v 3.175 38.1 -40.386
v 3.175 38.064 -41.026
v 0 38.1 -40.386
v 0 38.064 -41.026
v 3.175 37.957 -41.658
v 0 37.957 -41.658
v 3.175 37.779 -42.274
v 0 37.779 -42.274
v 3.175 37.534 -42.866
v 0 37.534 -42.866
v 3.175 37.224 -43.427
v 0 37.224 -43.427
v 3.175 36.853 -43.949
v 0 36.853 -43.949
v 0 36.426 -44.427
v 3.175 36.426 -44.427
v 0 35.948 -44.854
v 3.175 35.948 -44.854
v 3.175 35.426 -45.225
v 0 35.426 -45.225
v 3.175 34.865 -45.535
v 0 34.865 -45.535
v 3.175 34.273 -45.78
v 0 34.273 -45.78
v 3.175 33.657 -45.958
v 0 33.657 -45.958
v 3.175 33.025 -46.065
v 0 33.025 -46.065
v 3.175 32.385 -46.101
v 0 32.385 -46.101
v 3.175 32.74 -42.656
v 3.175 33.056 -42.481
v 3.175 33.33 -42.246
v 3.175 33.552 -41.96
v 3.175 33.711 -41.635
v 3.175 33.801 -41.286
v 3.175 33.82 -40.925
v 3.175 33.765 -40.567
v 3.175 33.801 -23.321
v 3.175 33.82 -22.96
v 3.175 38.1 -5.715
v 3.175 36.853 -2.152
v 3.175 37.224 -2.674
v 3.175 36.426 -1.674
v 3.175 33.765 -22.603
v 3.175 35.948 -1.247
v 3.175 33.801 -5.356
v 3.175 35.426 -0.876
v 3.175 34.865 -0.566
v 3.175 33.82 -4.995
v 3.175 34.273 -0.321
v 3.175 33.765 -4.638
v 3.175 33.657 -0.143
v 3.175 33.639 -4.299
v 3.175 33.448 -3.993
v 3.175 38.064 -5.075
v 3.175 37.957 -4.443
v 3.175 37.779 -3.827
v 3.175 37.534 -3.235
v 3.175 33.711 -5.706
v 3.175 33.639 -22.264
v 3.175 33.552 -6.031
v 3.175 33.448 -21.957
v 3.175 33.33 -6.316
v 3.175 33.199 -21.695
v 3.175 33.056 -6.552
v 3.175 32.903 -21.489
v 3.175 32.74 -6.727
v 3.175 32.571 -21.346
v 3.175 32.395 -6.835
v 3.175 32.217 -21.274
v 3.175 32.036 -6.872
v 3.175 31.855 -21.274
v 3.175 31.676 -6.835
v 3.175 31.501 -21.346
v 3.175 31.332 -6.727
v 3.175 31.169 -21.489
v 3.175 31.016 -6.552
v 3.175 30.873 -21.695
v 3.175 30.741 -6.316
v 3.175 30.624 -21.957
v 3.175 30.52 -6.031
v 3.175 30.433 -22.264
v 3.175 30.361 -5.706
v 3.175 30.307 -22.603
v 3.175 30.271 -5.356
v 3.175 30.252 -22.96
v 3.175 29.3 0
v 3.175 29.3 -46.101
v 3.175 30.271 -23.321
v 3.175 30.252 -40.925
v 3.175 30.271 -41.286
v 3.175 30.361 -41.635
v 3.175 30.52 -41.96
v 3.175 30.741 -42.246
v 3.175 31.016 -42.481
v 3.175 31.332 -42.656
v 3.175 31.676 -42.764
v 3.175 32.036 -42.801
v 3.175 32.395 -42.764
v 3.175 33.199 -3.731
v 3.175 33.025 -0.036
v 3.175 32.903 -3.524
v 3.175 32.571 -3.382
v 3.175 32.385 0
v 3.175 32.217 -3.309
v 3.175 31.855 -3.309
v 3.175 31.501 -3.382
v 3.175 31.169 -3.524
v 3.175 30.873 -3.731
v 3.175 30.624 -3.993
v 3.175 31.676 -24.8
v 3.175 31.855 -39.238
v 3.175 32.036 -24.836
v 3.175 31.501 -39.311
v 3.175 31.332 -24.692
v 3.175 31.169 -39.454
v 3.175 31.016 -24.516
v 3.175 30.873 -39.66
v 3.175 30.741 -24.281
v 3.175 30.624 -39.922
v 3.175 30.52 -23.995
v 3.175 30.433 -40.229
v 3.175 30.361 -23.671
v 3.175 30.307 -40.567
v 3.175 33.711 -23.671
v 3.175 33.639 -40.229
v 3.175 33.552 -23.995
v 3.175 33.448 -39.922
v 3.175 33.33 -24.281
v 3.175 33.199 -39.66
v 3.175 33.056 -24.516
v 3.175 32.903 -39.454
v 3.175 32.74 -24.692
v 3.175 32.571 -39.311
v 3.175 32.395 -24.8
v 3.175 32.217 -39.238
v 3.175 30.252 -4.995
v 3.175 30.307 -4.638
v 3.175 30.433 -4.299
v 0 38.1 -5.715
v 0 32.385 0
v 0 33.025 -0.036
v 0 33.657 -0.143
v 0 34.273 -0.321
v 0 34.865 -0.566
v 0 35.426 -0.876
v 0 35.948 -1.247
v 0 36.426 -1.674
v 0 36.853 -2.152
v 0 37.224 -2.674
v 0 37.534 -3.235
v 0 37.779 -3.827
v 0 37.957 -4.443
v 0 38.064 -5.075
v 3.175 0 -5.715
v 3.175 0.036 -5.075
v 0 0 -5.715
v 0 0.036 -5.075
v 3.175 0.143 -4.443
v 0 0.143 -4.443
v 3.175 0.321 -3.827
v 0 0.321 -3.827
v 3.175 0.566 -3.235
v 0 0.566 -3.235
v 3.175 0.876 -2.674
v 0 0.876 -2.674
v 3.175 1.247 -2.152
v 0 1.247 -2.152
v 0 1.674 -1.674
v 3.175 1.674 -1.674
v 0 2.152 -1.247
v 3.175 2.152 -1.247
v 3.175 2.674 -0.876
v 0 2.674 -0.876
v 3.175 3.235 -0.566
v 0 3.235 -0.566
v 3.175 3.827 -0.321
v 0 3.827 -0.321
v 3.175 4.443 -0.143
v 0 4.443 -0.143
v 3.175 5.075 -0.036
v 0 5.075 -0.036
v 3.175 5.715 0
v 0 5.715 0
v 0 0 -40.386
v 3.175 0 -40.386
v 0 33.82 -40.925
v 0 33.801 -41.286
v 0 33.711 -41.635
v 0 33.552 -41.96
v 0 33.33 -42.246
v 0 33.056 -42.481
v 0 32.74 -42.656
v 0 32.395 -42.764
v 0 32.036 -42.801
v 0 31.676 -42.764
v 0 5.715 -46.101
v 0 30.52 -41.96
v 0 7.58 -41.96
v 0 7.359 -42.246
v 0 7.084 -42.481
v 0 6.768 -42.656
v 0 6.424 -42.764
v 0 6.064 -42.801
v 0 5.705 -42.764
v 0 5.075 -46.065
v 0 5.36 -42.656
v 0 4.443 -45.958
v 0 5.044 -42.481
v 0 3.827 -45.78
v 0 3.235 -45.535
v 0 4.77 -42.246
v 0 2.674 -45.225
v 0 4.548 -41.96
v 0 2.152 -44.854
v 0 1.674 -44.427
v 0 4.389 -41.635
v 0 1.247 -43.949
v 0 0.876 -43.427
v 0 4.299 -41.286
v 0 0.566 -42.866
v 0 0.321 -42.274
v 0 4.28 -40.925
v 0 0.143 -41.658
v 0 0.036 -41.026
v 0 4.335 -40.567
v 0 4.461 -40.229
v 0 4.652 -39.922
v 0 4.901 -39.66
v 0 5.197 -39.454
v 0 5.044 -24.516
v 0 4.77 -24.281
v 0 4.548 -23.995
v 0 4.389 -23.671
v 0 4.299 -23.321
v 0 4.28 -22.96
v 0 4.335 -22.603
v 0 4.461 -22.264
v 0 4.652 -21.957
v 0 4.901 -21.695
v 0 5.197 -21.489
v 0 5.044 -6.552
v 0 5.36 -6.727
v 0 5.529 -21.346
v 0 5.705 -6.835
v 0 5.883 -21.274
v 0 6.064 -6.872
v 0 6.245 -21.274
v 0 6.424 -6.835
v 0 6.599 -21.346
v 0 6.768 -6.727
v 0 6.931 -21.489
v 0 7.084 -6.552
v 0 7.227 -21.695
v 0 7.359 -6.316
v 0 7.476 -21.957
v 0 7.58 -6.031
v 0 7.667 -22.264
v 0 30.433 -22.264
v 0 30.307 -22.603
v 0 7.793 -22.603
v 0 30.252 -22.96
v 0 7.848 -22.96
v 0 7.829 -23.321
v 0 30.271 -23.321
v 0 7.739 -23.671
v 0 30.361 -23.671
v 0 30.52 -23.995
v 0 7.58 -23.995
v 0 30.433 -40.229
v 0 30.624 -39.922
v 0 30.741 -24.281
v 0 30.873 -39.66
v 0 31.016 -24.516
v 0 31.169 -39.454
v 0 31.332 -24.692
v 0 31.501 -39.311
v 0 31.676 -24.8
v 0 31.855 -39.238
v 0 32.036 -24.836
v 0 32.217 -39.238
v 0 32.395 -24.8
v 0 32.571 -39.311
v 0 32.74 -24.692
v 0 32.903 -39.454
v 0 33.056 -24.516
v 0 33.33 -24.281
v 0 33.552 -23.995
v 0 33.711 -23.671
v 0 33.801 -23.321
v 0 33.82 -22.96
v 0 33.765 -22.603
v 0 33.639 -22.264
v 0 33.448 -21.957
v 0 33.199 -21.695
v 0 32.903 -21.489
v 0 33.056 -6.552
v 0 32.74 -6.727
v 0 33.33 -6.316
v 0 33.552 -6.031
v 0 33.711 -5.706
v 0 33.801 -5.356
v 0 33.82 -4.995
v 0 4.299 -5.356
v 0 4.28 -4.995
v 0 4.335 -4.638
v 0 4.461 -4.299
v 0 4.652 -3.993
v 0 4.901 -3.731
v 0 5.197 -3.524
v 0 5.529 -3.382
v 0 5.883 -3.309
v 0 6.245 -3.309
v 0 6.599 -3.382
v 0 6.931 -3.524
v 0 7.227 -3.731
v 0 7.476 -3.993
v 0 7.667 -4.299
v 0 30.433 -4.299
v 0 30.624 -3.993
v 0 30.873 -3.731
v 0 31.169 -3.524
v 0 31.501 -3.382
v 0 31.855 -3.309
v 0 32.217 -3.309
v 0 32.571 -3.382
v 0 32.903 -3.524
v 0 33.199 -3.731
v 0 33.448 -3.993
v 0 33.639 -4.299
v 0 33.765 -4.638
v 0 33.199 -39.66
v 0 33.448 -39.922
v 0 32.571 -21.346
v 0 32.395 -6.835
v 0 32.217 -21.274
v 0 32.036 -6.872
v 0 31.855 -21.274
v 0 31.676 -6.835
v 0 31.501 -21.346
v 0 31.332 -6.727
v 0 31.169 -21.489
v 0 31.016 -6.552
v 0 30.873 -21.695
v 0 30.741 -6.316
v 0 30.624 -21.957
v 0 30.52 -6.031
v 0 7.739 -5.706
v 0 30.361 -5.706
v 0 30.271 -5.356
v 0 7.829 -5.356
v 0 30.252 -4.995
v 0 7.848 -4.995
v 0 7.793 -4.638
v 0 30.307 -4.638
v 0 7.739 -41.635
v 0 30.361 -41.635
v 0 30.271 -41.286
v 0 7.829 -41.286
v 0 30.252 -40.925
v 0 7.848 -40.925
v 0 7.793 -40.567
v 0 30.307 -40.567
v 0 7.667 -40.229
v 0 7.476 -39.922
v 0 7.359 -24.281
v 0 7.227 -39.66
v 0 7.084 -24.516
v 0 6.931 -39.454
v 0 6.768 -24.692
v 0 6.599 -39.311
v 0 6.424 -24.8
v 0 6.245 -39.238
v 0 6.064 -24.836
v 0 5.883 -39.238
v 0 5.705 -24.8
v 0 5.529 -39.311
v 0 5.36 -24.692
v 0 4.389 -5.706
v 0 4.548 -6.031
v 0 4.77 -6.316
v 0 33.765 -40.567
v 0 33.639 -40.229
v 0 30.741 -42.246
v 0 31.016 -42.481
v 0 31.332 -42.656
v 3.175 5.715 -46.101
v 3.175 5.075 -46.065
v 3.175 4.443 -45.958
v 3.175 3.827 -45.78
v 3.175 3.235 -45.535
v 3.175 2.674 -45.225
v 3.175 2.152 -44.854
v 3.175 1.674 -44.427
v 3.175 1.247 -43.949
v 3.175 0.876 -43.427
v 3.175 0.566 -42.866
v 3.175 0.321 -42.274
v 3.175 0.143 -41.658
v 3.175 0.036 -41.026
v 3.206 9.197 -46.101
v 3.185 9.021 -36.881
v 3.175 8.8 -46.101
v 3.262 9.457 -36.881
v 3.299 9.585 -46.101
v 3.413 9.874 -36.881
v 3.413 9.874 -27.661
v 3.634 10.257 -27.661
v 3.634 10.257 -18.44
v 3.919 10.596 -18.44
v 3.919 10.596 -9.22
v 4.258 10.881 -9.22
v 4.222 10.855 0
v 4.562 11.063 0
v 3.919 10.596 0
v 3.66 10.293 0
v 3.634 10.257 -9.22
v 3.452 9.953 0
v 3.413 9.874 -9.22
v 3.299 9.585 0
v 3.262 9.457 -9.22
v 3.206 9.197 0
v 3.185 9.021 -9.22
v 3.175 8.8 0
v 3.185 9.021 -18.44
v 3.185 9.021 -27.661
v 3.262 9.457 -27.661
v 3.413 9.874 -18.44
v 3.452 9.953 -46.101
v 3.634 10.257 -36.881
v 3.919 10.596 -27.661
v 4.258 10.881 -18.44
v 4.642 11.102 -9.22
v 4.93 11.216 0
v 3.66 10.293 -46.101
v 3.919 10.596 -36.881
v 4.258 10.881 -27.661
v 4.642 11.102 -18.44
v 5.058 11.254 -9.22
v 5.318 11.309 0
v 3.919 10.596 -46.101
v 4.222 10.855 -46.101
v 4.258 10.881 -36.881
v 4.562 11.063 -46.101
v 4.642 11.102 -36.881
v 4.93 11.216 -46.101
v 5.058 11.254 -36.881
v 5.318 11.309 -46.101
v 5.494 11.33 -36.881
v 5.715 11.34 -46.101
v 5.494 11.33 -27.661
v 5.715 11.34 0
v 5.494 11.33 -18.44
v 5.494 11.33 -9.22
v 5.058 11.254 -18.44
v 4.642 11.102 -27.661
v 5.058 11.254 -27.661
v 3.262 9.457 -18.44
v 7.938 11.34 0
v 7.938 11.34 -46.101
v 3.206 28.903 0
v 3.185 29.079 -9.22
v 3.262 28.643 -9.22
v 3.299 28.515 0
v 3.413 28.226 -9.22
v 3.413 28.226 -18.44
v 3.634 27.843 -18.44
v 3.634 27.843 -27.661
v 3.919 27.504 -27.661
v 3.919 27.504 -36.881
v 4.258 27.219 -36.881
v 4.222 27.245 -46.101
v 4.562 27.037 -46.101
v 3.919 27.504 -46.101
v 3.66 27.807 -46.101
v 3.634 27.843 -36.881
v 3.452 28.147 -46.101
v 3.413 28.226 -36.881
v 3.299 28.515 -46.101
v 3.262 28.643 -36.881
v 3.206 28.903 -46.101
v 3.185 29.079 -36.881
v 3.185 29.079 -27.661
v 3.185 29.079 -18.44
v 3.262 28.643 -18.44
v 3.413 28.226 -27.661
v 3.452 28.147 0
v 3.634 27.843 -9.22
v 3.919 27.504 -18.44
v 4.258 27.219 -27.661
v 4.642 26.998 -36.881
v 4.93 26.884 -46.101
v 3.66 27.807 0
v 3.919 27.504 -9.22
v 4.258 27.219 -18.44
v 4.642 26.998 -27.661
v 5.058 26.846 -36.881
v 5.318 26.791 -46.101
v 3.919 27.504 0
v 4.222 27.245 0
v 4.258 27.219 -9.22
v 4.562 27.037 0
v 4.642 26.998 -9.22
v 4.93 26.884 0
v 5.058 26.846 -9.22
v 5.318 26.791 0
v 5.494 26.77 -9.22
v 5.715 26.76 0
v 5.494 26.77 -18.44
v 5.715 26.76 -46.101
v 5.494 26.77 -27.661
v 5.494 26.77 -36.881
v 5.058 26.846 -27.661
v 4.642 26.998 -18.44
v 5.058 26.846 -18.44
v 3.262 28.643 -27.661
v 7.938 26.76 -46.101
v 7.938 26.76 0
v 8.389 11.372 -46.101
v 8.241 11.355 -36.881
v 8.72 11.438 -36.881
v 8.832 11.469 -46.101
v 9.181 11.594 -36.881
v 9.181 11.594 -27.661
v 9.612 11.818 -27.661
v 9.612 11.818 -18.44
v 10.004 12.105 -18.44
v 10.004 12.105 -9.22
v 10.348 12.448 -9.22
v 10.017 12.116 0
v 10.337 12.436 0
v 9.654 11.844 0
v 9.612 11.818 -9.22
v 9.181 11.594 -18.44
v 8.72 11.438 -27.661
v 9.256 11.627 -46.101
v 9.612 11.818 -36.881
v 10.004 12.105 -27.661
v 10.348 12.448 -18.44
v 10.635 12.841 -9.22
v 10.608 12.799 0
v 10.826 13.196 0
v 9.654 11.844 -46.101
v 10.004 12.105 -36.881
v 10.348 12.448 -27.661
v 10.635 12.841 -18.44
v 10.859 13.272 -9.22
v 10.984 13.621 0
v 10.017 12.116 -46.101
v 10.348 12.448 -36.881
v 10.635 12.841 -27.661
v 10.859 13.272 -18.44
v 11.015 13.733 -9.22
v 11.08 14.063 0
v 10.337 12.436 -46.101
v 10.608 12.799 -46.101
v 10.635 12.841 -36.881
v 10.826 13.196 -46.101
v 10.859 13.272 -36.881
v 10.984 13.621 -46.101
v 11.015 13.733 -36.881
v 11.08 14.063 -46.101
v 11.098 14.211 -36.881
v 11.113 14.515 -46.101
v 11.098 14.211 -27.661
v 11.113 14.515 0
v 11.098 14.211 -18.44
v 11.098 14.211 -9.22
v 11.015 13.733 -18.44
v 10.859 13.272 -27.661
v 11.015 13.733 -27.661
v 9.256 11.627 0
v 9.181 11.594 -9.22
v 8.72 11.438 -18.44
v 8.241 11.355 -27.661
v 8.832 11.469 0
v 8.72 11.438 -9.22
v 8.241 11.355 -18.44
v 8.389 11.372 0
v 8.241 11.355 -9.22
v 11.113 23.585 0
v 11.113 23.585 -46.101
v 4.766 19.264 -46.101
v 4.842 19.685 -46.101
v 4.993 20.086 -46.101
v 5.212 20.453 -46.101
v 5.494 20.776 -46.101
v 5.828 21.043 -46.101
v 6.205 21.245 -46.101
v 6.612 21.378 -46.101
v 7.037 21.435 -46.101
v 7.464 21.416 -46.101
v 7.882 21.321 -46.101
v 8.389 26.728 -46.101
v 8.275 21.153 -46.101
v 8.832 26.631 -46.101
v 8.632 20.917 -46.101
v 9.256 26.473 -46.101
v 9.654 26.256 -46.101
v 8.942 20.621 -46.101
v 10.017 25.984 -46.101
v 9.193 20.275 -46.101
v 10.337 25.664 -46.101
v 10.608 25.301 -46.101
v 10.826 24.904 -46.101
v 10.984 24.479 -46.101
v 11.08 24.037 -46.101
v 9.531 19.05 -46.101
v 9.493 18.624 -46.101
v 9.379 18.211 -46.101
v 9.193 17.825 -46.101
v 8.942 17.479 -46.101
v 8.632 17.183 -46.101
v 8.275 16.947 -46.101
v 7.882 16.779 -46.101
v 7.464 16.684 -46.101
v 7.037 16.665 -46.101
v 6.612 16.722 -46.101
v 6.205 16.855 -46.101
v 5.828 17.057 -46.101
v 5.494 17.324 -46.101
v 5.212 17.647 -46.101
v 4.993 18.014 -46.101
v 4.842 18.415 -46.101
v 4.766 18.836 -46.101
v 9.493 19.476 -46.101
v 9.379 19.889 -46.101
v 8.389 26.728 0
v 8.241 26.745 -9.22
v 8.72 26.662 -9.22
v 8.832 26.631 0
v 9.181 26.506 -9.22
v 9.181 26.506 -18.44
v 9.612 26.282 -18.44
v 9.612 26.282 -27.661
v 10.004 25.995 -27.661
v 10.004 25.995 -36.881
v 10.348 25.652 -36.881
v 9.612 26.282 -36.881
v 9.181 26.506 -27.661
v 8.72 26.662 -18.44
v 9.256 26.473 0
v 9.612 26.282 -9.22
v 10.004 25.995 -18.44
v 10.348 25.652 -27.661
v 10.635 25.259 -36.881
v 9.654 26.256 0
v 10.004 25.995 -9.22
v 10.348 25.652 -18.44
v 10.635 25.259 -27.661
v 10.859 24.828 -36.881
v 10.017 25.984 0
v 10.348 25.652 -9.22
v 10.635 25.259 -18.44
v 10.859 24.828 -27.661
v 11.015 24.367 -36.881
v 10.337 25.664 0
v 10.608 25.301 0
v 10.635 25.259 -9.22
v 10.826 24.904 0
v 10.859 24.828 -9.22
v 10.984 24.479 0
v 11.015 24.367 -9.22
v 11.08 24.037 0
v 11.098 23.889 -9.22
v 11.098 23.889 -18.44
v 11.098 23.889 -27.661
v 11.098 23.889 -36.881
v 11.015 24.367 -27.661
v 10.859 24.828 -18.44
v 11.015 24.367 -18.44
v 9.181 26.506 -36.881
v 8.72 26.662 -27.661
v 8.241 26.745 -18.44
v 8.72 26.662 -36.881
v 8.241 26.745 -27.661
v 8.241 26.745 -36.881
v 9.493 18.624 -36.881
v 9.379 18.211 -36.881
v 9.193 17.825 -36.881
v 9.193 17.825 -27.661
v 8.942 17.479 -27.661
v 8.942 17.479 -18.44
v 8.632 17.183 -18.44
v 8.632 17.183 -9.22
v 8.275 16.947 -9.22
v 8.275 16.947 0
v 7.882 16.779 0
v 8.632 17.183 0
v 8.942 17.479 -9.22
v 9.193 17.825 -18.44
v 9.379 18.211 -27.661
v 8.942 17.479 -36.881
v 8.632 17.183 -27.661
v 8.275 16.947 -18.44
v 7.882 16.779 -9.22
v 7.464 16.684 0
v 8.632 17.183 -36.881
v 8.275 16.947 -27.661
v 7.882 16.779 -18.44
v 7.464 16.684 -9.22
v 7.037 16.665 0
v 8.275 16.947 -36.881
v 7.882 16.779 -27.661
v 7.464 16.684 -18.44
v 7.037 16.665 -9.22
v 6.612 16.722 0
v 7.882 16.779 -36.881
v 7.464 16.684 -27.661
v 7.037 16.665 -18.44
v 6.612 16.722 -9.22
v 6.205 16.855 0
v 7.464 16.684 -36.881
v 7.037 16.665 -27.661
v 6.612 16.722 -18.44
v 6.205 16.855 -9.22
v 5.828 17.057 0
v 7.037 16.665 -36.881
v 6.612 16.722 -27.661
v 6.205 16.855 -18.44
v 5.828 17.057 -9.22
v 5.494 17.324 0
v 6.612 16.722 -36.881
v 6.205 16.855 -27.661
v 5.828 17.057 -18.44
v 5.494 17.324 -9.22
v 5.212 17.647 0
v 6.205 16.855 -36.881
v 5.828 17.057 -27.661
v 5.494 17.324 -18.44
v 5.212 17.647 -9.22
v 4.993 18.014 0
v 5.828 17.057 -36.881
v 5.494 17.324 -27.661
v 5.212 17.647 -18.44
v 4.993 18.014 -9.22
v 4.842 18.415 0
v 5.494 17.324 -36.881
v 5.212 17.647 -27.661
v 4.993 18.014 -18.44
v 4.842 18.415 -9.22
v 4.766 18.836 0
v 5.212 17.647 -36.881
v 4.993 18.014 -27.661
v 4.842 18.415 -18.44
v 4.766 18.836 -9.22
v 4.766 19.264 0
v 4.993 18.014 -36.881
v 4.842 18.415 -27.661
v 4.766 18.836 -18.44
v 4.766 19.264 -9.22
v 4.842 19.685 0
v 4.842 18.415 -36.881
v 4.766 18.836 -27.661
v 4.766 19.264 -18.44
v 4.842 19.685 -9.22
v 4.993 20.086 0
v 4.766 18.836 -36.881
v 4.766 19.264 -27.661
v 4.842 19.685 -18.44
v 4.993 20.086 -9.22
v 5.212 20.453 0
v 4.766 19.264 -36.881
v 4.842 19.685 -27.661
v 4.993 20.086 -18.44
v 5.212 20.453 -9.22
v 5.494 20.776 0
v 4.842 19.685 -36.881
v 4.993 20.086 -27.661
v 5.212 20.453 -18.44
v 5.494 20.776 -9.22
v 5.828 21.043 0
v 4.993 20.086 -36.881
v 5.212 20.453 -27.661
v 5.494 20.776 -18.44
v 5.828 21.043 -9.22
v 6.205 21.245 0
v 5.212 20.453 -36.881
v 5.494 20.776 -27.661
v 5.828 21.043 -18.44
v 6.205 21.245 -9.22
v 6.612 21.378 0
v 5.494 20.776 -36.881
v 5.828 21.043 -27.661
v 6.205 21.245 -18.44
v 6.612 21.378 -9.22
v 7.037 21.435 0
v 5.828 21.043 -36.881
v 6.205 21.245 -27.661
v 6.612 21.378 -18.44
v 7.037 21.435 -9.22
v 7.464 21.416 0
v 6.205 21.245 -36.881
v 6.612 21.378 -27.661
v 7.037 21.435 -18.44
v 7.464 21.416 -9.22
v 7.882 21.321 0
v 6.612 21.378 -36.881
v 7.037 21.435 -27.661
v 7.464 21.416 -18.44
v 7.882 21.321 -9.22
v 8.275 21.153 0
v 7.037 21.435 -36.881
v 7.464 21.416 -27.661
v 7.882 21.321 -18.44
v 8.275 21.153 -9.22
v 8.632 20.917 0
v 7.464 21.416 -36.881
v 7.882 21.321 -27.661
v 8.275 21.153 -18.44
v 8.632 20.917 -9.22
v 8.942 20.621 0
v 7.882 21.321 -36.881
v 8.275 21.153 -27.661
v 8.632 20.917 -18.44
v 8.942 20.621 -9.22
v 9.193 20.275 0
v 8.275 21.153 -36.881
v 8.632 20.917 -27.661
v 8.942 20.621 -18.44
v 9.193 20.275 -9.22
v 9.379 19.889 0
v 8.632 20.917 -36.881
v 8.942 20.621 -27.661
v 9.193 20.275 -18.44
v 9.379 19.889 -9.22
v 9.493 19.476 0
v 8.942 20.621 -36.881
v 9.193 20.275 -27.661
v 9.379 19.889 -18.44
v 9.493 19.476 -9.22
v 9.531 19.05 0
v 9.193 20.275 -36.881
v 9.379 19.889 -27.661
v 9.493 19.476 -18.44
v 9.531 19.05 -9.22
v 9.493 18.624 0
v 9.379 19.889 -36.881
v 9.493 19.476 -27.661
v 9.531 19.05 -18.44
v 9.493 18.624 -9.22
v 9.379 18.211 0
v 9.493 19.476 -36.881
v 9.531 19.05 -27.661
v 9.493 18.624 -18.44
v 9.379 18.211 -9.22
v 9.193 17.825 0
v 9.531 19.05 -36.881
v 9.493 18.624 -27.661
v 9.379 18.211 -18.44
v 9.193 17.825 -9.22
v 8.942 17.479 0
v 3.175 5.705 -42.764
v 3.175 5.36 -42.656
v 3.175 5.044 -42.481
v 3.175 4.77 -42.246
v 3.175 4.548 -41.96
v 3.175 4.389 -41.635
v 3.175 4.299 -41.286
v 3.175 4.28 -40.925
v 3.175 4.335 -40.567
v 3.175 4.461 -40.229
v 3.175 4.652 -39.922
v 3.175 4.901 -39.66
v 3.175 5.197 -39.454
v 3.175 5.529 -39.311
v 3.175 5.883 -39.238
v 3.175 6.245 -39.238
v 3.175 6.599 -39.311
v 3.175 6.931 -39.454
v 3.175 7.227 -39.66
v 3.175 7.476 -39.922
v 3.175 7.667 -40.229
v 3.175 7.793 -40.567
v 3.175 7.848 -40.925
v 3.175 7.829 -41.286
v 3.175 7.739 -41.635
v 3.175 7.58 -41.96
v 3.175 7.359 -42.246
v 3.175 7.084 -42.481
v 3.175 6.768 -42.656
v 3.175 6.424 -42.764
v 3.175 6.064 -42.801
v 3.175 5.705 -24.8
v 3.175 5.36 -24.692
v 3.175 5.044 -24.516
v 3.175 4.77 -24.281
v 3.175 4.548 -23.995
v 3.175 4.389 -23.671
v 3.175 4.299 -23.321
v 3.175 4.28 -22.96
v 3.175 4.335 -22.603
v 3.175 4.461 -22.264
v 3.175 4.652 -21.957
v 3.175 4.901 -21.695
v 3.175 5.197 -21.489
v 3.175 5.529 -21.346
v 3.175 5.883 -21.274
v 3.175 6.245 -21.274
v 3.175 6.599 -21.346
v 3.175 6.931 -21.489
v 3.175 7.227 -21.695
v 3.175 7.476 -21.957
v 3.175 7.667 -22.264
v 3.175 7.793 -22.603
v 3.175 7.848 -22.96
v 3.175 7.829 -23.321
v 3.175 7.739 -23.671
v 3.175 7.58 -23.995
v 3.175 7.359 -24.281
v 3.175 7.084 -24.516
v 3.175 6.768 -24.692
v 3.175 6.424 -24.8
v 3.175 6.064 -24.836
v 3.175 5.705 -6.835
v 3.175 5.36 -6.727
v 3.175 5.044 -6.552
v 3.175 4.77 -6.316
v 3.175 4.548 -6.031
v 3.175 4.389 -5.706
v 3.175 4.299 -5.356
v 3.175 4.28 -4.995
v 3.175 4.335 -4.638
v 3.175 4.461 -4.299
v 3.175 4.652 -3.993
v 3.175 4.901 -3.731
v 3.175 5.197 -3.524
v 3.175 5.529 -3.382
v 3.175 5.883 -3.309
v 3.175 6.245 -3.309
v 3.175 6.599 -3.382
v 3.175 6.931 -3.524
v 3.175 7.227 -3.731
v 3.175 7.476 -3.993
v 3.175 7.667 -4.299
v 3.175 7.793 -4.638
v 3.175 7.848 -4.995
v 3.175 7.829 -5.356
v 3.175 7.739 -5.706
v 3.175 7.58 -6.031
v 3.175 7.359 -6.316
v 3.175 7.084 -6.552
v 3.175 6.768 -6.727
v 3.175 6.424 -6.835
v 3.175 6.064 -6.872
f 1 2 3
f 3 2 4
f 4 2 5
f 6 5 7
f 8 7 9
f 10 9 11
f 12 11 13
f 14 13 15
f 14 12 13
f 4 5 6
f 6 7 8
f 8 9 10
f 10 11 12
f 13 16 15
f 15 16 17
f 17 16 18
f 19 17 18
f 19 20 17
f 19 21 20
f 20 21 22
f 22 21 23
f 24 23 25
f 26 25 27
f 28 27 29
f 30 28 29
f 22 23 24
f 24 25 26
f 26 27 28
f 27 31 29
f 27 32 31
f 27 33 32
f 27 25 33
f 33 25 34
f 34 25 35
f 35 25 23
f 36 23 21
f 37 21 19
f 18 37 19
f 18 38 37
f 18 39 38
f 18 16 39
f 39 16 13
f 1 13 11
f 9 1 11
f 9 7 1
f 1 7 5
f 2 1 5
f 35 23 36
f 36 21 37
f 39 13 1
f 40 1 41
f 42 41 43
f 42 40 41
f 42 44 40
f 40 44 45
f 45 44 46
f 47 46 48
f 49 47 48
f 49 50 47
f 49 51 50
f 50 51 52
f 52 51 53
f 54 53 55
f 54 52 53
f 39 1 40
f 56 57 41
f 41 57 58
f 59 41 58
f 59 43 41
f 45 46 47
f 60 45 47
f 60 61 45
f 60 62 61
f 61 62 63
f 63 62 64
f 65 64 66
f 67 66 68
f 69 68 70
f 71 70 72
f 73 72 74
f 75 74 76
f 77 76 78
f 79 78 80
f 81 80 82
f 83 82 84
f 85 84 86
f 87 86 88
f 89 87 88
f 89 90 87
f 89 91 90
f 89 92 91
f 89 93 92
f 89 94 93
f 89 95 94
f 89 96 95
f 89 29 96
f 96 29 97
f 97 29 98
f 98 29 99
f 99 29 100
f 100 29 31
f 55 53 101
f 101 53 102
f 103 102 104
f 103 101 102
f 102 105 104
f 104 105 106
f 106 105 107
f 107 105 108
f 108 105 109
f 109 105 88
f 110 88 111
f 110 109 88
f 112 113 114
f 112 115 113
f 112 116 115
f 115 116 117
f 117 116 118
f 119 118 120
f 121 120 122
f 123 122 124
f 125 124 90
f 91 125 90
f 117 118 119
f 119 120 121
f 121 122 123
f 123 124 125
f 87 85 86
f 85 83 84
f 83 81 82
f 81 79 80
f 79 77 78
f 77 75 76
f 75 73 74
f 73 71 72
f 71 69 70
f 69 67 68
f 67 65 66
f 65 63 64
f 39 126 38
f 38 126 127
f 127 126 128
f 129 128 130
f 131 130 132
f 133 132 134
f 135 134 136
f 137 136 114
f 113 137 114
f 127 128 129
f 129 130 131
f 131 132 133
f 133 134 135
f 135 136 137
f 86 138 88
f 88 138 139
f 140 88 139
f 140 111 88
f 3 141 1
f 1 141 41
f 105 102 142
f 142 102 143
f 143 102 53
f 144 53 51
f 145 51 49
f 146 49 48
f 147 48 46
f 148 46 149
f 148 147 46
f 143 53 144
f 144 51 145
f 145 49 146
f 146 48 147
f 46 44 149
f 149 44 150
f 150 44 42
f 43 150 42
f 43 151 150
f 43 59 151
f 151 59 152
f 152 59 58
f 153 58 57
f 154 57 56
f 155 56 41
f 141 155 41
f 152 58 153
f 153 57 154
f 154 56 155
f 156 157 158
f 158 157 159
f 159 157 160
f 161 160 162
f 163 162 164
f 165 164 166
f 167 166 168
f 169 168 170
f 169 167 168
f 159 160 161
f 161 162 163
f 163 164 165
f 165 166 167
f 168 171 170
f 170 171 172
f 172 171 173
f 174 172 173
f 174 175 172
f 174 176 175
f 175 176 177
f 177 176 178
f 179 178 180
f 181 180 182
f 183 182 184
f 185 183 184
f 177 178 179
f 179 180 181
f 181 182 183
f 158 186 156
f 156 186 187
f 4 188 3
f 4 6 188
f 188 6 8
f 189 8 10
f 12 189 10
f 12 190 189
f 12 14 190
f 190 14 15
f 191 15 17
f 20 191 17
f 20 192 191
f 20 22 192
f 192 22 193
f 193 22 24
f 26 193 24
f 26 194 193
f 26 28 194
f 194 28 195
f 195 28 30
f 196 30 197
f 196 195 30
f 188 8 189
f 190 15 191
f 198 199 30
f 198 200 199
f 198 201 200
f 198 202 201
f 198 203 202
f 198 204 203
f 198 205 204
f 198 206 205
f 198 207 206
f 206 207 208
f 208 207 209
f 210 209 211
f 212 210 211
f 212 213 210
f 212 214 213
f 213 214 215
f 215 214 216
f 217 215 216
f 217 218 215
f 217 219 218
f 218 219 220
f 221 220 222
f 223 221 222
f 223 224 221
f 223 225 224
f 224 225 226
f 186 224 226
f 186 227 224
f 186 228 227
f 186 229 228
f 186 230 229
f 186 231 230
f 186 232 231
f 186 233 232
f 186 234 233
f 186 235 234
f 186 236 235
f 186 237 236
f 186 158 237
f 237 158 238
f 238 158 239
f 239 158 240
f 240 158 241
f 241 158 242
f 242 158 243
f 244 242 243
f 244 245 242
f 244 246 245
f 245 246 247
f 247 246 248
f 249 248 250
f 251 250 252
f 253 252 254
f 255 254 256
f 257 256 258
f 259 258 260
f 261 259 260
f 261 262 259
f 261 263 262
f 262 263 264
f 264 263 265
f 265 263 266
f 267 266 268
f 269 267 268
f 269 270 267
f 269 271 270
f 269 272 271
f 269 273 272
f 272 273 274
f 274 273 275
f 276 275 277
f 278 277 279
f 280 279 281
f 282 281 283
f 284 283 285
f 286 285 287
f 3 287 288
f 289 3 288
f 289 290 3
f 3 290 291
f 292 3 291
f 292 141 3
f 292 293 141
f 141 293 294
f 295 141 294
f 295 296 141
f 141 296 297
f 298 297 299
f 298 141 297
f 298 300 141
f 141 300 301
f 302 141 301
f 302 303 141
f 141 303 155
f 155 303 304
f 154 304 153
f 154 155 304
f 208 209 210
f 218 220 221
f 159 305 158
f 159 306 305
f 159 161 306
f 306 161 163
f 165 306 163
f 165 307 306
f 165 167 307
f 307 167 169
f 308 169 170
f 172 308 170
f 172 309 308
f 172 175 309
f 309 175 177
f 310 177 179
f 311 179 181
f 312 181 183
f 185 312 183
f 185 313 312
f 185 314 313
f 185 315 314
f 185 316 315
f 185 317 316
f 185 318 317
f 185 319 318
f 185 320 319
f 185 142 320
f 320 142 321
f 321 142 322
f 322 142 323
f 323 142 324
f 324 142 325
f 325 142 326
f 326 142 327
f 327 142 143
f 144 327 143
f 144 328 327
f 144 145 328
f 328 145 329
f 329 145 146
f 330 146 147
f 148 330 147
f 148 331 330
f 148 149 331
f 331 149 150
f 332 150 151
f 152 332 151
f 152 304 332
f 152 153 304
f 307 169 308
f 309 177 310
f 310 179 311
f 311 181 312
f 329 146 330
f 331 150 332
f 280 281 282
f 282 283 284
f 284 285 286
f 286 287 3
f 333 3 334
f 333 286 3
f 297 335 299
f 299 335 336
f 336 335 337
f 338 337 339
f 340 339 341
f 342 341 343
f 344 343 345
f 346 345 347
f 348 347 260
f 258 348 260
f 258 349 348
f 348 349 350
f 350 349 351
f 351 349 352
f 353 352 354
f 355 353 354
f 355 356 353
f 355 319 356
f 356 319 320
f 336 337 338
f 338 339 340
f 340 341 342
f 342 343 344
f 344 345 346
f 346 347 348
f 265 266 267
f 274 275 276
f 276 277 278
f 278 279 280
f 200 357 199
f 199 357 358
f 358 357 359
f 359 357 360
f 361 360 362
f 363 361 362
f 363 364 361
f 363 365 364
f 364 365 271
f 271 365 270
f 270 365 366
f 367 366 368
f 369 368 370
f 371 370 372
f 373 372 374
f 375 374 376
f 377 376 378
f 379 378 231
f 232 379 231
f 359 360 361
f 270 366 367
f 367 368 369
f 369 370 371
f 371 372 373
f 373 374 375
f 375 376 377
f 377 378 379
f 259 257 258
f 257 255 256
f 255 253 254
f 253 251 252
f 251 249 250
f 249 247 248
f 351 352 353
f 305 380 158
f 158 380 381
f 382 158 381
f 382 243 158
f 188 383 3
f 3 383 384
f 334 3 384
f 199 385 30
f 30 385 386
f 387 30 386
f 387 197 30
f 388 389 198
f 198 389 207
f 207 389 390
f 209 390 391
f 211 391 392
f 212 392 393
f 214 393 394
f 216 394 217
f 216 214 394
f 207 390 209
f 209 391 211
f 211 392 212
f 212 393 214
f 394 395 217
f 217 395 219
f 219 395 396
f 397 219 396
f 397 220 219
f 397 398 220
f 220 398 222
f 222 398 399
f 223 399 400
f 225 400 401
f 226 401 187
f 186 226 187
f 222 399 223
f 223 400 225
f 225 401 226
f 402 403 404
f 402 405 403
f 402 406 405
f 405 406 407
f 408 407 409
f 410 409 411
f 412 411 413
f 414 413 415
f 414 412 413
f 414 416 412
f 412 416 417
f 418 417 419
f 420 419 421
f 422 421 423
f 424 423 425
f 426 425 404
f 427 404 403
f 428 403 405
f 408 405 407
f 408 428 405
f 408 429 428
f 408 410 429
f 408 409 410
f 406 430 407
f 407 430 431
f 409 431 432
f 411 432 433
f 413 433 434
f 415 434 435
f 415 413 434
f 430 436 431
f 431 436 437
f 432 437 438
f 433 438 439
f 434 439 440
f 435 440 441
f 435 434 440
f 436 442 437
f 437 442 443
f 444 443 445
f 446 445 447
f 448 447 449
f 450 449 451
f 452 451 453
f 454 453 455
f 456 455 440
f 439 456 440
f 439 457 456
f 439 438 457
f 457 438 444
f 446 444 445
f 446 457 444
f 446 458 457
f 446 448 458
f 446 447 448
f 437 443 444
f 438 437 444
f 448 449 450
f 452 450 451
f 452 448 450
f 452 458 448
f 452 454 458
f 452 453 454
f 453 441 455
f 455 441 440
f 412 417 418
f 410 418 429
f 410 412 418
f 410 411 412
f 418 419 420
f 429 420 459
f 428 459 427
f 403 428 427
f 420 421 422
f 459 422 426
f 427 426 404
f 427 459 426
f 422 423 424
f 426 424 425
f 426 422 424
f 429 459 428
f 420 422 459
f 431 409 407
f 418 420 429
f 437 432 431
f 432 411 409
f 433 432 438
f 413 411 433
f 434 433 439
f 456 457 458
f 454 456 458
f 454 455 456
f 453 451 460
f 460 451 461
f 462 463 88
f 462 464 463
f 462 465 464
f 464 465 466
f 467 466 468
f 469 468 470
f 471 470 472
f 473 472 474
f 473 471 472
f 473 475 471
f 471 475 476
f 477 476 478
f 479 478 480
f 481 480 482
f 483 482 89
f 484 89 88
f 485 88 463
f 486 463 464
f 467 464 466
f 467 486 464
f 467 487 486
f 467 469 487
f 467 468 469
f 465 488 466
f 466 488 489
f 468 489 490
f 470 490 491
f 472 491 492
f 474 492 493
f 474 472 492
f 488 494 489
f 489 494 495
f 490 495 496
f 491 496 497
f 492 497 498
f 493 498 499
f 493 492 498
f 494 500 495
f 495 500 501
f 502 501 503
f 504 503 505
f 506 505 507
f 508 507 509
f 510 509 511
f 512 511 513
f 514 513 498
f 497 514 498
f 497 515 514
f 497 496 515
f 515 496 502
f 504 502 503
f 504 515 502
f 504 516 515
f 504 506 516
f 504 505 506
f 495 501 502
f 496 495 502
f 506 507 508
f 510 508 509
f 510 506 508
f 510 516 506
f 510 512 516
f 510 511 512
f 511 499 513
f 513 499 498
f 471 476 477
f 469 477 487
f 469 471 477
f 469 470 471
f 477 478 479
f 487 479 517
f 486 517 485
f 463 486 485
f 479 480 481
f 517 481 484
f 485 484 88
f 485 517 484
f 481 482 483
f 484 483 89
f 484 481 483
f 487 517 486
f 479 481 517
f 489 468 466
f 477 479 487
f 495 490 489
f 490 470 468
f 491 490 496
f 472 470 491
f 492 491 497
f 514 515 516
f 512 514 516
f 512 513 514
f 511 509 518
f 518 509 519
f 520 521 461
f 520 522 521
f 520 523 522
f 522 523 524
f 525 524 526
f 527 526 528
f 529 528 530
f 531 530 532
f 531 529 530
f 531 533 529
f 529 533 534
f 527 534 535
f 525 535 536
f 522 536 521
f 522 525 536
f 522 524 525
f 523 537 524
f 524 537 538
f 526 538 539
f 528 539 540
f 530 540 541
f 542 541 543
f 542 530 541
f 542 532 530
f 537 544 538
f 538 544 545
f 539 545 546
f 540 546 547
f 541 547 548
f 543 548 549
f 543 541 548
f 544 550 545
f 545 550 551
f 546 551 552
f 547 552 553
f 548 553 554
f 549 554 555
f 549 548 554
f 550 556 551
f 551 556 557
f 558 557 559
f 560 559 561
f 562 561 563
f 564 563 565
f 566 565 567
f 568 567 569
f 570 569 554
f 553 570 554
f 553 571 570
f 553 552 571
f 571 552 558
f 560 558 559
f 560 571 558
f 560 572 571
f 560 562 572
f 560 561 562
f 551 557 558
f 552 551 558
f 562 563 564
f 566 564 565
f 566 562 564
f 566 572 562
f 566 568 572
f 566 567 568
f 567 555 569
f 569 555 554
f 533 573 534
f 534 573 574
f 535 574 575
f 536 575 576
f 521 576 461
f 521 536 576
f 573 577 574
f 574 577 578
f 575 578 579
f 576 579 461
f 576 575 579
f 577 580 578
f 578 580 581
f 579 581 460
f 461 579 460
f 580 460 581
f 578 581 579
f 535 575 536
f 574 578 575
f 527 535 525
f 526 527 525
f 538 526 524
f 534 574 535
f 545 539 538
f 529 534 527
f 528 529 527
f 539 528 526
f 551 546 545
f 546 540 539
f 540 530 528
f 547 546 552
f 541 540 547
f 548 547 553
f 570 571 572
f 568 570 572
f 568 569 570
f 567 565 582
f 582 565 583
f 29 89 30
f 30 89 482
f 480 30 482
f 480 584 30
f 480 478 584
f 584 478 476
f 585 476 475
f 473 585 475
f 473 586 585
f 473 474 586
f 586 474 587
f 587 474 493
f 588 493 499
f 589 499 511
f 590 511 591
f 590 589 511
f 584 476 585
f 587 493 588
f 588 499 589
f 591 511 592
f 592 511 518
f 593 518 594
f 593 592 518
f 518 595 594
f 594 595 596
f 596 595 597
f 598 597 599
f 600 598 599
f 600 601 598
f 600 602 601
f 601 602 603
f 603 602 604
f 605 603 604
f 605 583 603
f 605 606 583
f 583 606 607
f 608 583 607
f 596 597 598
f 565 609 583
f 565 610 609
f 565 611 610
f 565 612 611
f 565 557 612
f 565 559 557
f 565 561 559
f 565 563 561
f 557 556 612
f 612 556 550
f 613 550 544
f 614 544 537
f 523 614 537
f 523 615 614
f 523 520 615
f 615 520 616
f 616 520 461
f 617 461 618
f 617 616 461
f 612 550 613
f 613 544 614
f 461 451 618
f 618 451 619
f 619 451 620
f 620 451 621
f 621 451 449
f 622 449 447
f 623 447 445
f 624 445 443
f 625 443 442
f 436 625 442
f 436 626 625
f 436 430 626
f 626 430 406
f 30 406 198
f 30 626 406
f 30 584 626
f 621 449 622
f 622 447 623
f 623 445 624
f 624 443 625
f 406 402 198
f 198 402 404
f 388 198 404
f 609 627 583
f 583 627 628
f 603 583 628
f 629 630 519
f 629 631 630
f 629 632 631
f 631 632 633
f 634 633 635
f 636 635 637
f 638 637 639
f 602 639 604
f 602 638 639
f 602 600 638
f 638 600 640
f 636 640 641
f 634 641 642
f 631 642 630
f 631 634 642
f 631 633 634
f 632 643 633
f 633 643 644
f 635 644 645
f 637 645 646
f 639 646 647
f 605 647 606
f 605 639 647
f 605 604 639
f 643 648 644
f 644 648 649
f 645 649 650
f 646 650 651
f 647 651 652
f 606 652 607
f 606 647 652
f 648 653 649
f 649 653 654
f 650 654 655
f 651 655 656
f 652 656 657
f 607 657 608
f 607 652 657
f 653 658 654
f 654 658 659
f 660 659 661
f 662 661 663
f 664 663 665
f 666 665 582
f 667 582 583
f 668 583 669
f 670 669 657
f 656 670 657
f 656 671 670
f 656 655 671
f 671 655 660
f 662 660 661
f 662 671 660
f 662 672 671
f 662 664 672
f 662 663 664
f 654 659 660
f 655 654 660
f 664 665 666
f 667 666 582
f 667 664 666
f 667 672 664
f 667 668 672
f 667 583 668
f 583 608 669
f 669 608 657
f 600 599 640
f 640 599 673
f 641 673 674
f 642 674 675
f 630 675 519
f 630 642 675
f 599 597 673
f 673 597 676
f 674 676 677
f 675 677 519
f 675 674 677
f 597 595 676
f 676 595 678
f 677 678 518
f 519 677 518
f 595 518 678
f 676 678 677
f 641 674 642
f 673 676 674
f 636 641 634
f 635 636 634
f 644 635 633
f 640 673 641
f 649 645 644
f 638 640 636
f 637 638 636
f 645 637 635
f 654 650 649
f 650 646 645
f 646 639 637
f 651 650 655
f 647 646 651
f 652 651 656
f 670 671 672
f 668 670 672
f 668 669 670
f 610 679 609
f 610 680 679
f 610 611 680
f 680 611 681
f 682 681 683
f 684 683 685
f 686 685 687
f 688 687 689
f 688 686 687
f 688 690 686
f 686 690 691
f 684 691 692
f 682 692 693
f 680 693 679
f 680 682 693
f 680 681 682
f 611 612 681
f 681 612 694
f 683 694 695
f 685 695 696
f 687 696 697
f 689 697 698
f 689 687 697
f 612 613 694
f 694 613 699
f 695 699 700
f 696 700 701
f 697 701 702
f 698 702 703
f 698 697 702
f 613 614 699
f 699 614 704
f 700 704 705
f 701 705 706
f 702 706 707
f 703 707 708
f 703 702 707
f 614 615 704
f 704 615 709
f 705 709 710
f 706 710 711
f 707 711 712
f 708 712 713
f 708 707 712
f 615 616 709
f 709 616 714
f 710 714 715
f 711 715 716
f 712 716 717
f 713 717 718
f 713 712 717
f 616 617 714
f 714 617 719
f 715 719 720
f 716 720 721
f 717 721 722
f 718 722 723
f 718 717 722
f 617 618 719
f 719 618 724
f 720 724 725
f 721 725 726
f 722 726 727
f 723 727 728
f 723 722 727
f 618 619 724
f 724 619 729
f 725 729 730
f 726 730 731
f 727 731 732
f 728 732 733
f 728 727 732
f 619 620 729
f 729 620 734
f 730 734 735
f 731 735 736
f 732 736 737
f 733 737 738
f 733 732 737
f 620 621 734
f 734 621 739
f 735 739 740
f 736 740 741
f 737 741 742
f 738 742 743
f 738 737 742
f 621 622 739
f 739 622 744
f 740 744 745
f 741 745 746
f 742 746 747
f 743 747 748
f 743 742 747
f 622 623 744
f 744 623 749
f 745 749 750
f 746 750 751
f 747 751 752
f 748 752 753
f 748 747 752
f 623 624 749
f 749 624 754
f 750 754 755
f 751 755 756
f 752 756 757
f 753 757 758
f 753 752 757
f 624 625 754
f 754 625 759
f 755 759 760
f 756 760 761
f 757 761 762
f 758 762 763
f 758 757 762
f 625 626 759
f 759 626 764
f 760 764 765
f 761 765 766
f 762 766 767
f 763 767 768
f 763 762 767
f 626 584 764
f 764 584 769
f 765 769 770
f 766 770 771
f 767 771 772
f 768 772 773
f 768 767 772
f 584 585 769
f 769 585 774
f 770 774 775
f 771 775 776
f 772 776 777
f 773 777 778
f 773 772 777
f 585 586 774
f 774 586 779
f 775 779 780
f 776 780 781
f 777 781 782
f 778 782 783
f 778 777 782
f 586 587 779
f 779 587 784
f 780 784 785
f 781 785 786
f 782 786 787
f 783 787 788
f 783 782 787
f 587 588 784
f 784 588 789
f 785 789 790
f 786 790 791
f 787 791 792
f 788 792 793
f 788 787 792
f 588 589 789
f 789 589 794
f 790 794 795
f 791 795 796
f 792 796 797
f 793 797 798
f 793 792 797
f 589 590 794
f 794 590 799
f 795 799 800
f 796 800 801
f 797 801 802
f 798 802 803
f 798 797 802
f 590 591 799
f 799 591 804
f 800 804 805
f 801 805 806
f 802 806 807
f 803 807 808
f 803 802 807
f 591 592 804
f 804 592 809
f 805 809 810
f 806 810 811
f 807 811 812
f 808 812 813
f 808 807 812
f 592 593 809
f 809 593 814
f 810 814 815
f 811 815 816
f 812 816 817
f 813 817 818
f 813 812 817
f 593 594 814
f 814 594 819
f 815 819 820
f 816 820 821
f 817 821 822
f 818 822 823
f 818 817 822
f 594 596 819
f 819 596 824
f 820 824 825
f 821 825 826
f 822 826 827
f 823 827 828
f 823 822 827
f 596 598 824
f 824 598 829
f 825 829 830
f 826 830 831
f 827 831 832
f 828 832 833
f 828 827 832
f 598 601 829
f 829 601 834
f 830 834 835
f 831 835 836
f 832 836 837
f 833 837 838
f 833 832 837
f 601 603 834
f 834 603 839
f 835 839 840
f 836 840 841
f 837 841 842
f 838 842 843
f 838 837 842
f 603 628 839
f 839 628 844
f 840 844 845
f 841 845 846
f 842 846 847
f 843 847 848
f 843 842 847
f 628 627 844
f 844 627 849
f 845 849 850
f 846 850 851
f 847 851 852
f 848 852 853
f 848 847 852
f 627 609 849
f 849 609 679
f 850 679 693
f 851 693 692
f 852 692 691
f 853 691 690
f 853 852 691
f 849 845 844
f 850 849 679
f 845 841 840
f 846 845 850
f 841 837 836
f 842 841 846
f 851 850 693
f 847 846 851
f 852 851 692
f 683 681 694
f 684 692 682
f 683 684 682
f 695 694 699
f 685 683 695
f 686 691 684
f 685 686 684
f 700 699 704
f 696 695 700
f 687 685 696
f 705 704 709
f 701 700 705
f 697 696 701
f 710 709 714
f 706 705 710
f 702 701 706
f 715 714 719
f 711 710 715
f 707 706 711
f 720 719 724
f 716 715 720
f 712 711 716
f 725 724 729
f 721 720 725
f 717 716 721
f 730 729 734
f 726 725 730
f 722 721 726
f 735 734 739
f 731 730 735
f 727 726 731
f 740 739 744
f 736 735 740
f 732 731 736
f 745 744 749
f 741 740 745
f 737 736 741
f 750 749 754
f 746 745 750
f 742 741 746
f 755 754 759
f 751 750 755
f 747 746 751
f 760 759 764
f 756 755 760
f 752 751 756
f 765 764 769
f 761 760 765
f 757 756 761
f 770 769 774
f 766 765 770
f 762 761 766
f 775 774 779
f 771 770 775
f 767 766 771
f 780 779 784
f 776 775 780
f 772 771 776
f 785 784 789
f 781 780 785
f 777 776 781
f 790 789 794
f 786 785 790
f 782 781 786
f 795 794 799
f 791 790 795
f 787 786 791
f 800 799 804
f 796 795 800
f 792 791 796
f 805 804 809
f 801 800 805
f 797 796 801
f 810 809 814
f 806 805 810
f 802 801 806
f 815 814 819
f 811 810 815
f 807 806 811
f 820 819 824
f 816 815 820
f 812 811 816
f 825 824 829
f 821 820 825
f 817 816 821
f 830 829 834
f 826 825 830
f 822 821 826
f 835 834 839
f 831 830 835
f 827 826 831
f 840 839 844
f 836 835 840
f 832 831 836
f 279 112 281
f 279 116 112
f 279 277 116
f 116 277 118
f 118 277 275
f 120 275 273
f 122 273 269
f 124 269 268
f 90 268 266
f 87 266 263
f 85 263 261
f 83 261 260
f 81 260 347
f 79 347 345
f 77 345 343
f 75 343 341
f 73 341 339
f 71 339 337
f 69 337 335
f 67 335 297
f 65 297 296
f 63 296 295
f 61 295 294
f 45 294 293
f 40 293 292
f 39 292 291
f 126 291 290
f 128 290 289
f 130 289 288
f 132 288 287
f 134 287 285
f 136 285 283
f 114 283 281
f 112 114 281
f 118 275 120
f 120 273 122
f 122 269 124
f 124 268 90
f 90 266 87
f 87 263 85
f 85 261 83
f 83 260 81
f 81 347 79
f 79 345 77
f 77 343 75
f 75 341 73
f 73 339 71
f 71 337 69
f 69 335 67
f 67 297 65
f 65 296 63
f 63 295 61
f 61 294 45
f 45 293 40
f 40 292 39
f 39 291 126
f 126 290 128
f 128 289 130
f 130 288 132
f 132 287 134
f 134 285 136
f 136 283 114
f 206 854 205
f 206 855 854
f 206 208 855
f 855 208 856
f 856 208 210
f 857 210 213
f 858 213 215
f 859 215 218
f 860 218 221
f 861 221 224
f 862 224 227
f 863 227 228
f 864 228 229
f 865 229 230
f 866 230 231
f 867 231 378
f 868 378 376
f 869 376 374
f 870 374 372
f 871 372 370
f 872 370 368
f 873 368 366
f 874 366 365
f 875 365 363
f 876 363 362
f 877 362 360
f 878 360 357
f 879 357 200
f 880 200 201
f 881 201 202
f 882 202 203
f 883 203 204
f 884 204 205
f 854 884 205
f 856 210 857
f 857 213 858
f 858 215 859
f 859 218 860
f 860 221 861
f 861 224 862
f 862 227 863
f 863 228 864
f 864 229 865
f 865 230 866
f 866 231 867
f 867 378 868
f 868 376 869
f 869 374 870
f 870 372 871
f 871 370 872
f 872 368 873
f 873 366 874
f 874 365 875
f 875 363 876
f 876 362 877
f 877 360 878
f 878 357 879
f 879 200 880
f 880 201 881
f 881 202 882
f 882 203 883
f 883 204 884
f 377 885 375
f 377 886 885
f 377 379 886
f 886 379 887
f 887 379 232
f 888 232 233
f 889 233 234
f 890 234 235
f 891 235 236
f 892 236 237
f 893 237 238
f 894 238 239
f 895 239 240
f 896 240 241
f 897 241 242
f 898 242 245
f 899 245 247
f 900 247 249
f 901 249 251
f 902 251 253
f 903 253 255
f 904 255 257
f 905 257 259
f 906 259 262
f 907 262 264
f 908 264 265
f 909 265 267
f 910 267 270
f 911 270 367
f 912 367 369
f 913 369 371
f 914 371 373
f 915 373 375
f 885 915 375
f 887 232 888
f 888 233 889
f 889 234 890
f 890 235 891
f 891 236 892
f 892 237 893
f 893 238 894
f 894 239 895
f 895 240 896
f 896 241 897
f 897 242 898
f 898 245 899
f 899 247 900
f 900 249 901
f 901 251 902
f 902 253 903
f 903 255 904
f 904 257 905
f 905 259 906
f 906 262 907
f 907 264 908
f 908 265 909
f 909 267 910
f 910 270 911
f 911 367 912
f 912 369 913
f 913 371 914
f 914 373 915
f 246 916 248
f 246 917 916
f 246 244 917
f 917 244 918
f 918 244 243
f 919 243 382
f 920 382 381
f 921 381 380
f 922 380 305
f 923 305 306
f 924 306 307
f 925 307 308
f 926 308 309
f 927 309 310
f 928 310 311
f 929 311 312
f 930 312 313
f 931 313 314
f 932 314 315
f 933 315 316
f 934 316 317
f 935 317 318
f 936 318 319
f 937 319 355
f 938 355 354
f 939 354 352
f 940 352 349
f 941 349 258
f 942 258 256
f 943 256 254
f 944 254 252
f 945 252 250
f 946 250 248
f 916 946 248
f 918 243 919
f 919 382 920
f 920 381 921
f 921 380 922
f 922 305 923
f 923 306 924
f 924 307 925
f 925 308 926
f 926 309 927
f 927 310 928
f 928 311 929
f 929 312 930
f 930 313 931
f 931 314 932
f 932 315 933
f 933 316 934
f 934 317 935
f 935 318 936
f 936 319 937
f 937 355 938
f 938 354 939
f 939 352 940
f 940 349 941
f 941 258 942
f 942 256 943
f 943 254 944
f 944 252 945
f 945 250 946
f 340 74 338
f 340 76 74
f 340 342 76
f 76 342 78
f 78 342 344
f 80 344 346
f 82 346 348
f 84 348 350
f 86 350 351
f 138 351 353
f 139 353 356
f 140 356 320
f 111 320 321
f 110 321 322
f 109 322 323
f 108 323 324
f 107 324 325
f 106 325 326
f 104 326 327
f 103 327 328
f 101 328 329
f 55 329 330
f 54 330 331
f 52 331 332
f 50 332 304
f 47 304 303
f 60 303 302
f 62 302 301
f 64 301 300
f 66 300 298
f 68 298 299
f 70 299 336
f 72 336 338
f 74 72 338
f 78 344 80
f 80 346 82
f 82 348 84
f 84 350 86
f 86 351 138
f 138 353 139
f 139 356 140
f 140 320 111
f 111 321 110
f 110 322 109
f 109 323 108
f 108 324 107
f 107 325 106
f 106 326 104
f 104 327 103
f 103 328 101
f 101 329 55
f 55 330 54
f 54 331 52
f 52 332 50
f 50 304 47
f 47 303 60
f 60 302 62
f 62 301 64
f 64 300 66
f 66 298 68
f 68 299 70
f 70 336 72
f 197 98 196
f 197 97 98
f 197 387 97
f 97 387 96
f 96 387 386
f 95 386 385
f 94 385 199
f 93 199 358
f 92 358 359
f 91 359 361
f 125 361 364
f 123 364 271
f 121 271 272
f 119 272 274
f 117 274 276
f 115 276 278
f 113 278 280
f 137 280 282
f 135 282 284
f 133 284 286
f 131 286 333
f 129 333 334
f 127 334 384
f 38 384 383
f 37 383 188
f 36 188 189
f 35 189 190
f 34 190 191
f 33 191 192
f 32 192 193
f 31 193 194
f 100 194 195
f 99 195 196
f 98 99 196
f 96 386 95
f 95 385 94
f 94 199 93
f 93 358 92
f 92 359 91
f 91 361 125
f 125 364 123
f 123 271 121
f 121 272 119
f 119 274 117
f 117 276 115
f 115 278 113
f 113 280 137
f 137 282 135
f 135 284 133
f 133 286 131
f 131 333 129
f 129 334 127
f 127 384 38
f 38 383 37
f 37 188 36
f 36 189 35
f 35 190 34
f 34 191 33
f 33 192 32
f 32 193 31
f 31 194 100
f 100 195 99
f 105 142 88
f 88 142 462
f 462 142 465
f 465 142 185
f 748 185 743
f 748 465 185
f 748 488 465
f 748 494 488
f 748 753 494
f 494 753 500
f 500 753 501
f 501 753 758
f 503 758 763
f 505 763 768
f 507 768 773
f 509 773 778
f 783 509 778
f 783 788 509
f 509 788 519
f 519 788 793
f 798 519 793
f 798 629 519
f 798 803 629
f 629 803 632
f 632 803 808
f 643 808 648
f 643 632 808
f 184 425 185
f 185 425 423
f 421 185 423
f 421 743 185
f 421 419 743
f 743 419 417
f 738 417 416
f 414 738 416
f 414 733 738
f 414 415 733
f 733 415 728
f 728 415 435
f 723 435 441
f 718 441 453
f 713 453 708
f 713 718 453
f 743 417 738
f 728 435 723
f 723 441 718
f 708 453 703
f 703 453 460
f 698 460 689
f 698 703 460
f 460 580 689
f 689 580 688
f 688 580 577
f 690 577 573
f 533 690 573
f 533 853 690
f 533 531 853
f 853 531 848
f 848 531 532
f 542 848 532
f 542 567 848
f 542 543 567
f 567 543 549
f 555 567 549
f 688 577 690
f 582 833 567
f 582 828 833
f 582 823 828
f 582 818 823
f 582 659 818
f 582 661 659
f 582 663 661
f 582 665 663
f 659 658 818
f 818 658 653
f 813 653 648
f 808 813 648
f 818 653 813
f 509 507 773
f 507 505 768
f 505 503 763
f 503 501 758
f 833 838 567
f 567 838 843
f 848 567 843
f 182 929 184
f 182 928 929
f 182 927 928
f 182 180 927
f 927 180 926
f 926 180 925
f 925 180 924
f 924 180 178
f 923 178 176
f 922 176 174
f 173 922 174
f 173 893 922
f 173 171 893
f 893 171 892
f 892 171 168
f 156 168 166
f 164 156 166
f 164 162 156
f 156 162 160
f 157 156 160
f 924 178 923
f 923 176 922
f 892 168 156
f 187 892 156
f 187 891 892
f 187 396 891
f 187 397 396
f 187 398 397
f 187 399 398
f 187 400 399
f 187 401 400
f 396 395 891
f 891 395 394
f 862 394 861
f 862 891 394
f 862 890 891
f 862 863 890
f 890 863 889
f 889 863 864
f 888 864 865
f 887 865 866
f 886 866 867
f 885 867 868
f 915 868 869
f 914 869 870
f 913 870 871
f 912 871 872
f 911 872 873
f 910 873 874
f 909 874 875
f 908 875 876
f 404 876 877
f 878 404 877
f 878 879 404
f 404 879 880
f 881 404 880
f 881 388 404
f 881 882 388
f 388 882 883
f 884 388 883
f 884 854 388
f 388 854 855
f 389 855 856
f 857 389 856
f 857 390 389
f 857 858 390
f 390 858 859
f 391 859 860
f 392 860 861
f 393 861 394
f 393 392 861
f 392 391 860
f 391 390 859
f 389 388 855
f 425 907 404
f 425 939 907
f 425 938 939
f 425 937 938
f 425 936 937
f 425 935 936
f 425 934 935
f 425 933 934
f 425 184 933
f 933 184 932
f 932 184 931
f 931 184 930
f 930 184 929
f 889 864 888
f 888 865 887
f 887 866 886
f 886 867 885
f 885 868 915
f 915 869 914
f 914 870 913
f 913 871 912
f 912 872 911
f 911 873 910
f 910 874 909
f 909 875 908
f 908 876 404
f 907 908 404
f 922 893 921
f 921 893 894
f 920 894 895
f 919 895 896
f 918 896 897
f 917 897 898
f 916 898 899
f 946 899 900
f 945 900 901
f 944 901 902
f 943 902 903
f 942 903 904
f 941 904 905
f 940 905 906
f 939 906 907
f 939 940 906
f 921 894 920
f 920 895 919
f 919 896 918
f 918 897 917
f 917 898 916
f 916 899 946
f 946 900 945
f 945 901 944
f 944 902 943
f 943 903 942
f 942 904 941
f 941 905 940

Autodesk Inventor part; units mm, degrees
ref_plane "YZ Plane" through (0, 0, 0) normal (1, 0, 0) x (0, 1, 0)
ref_plane "XZ Plane" through (0, 0, 0) normal (0, 1, 0) x (-1, 0, 0)
ref_plane "XY Plane" through (0, 0, 0) normal (0, 0, 1) x (1, 0, 0)
sketch "Sketch1" plane through (0, 0, 0) normal (1, 0, 0) x (0, 1, 0)
  line L0 (0, 0) -> (38.1, 0)
  line L1 (38.1, 0) -> (38.1, -46.101)
  line L2 (38.1, -46.101) -> (0, -46.101)
  line L3 (0, -46.101) -> (0, 0)
  dimension "d0" = 38.1
  dimension "d1" = 46.101
extrude "Extrusion1" add sketch "Sketch1" along normal blind 3.175
sketch "Sketch2" plane through (3.175, 0, 0) normal (1, 0, 0) x (0, 0, -1)
  line L0 (0, 38.1) -> (0, 0) construction
  line L1 (0, 0) -> (46.101, 0) construction
  line L2 (46.101, 0) -> (46.101, 38.1) construction
  line L3 (46.101, 38.1) -> (0, 38.1) construction
  line L4 (0, 38.1) -> (0, 0) construction
  line L5 (0, 19.05) -> (46.101, 19.05) construction
  line L6 (46.101, 38.1) -> (0, 38.1) construction
  line L7 (0, 0) -> (46.101, 0) construction
  line L8 (46.101, 0) -> (46.101, 38.1) projected
  line L9 (23.0505, 19.05) -> (23.0505, 6.0641) construction
  line L10 (23.0505, 19.05) -> (23.0505, 32.0359) construction
  line L11 (17.0623, 6.0641) -> (23.0505, 6.0641) construction
  line L12 (23.0505, 6.0641) -> (29.0387, 6.0641) construction
  line L13 (17.0623, 6.0641) -> (17.0623, 7.2131) construction
  line L14 (29.0387, 6.0641) -> (29.0387, 7.2131) construction
  line L15 (29.0387, 6.0641) -> (35.0269, 6.0641) construction
  line L16 (35.0269, 6.0641) -> (41.0151, 6.0641) construction
  line L17 (41.0151, 6.0641) -> (41.0151, 7.2131) construction
  line L18 (17.0623, 6.0641) -> (11.0741, 6.0641) construction
  line L19 (11.0741, 6.0641) -> (5.0859, 6.0641) construction
  line L20 (5.0859, 7.2131) -> (5.0859, 6.0641) construction
  circle A0 centre (23.0505, 6.0641) radius 1.7859
  circle A1 centre (5.0859, 6.0641) radius 1.7859
  circle A2 centre (41.0151, 6.0641) radius 1.7859
  line L21 (5.0859, 6.0641) -> (5.0859, 32.0359) construction
  line L22 (5.0859, 32.0359) -> (23.0505, 32.0359) construction
  line L23 (23.0505, 32.0359) -> (41.0151, 32.0359) construction
  line L24 (41.0151, 32.0359) -> (41.0151, 6.0641) construction
  circle A3 centre (5.0859, 32.0359) radius 1.7859
  circle A4 centre (23.0505, 32.0359) radius 1.7859
  circle A5 centre (41.0151, 32.0359) radius 1.7859
  dimension "d16" = 3.5719
extrude "Extrusion2" cut sketch "Sketch2" against normal through all
sketch "Sketch3" plane through (3.175, 0, 0) normal (1, 0, 0) x (0, 0, -1)
  line L0 (0, 38.1) -> (0, 0) projected
  line L1 (0, 19.05) -> (46.101, 19.05)
  line L2 (46.101, 0) -> (46.101, 38.1) projected
  line L3 (0, 11.3401) -> (46.101, 11.3401)
  line L4 (46.101, 11.3401) -> (46.101, 26.7599)
  line L5 (46.101, 26.7599) -> (0, 26.7599)
  line L6 (0, 26.7599) -> (0, 11.3401)
  line L7 (0, 11.3401) -> (46.101, 26.7599) construction
  line L8 (46.101, 11.3401) -> (0, 26.7599) construction
  point P0 (23.0505, 19.05)
extrude "Extrusion3" add sketch "Sketch3" along normal blind 7.9375
sketch "Sketch4" plane through (0, 0, 0) normal (0, 0, 1) x (1, 0, 0)
  line L0 (0, 0) -> (0, 38.1) projected
  line L1 (0, 0) -> (3.175, 0) projected
  line L2 (3.175, 11.3401) -> (3.175, 0) projected
  line L3 (3.175, 11.3401) -> (11.1125, 11.3401) projected
  line L4 (11.1125, 26.7599) -> (11.1125, 11.3401) projected
  line L5 (3.175, 26.7599) -> (11.1125, 26.7599) projected
  line L6 (3.175, 38.1) -> (3.175, 26.7599) projected
  line L7 (0, 38.1) -> (3.175, 38.1) projected
  line L8 (3.175, 26.7599) -> (3.175, 11.3401)
  line L9 (11.1125, 19.05) -> (3.175, 19.05) construction
  line L10 (3.175, 26.7599) -> (11.1125, 26.7599) construction
  line L11 (7.1437, 26.7599) -> (7.1438, 11.3401) construction
  circle A0 centre (7.1438, 19.05) radius 2.3876
  dimension "d9" = 4.7752
extrude "Extrusion4" cut sketch "Sketch4" against normal through all contours A0
fillet "Fillet1" radius 3.175 2 edges at (11.1125, 26.7599, -23.0505) (11.1125, 11.3401, -23.0505)
fillet "Fillet2" radius 2.54 2 edges at (3.175, 26.7599, -23.0505) (3.175, 11.3401, -23.0505)
fillet "Fillet4" radius 5.715 4 edges at (1.5875, 0, -46.101) (1.5875, 0, 0) (1.5875, 38.1, 0) (1.5875, 38.1, -46.101)
properties part number "top axle holder 2"
